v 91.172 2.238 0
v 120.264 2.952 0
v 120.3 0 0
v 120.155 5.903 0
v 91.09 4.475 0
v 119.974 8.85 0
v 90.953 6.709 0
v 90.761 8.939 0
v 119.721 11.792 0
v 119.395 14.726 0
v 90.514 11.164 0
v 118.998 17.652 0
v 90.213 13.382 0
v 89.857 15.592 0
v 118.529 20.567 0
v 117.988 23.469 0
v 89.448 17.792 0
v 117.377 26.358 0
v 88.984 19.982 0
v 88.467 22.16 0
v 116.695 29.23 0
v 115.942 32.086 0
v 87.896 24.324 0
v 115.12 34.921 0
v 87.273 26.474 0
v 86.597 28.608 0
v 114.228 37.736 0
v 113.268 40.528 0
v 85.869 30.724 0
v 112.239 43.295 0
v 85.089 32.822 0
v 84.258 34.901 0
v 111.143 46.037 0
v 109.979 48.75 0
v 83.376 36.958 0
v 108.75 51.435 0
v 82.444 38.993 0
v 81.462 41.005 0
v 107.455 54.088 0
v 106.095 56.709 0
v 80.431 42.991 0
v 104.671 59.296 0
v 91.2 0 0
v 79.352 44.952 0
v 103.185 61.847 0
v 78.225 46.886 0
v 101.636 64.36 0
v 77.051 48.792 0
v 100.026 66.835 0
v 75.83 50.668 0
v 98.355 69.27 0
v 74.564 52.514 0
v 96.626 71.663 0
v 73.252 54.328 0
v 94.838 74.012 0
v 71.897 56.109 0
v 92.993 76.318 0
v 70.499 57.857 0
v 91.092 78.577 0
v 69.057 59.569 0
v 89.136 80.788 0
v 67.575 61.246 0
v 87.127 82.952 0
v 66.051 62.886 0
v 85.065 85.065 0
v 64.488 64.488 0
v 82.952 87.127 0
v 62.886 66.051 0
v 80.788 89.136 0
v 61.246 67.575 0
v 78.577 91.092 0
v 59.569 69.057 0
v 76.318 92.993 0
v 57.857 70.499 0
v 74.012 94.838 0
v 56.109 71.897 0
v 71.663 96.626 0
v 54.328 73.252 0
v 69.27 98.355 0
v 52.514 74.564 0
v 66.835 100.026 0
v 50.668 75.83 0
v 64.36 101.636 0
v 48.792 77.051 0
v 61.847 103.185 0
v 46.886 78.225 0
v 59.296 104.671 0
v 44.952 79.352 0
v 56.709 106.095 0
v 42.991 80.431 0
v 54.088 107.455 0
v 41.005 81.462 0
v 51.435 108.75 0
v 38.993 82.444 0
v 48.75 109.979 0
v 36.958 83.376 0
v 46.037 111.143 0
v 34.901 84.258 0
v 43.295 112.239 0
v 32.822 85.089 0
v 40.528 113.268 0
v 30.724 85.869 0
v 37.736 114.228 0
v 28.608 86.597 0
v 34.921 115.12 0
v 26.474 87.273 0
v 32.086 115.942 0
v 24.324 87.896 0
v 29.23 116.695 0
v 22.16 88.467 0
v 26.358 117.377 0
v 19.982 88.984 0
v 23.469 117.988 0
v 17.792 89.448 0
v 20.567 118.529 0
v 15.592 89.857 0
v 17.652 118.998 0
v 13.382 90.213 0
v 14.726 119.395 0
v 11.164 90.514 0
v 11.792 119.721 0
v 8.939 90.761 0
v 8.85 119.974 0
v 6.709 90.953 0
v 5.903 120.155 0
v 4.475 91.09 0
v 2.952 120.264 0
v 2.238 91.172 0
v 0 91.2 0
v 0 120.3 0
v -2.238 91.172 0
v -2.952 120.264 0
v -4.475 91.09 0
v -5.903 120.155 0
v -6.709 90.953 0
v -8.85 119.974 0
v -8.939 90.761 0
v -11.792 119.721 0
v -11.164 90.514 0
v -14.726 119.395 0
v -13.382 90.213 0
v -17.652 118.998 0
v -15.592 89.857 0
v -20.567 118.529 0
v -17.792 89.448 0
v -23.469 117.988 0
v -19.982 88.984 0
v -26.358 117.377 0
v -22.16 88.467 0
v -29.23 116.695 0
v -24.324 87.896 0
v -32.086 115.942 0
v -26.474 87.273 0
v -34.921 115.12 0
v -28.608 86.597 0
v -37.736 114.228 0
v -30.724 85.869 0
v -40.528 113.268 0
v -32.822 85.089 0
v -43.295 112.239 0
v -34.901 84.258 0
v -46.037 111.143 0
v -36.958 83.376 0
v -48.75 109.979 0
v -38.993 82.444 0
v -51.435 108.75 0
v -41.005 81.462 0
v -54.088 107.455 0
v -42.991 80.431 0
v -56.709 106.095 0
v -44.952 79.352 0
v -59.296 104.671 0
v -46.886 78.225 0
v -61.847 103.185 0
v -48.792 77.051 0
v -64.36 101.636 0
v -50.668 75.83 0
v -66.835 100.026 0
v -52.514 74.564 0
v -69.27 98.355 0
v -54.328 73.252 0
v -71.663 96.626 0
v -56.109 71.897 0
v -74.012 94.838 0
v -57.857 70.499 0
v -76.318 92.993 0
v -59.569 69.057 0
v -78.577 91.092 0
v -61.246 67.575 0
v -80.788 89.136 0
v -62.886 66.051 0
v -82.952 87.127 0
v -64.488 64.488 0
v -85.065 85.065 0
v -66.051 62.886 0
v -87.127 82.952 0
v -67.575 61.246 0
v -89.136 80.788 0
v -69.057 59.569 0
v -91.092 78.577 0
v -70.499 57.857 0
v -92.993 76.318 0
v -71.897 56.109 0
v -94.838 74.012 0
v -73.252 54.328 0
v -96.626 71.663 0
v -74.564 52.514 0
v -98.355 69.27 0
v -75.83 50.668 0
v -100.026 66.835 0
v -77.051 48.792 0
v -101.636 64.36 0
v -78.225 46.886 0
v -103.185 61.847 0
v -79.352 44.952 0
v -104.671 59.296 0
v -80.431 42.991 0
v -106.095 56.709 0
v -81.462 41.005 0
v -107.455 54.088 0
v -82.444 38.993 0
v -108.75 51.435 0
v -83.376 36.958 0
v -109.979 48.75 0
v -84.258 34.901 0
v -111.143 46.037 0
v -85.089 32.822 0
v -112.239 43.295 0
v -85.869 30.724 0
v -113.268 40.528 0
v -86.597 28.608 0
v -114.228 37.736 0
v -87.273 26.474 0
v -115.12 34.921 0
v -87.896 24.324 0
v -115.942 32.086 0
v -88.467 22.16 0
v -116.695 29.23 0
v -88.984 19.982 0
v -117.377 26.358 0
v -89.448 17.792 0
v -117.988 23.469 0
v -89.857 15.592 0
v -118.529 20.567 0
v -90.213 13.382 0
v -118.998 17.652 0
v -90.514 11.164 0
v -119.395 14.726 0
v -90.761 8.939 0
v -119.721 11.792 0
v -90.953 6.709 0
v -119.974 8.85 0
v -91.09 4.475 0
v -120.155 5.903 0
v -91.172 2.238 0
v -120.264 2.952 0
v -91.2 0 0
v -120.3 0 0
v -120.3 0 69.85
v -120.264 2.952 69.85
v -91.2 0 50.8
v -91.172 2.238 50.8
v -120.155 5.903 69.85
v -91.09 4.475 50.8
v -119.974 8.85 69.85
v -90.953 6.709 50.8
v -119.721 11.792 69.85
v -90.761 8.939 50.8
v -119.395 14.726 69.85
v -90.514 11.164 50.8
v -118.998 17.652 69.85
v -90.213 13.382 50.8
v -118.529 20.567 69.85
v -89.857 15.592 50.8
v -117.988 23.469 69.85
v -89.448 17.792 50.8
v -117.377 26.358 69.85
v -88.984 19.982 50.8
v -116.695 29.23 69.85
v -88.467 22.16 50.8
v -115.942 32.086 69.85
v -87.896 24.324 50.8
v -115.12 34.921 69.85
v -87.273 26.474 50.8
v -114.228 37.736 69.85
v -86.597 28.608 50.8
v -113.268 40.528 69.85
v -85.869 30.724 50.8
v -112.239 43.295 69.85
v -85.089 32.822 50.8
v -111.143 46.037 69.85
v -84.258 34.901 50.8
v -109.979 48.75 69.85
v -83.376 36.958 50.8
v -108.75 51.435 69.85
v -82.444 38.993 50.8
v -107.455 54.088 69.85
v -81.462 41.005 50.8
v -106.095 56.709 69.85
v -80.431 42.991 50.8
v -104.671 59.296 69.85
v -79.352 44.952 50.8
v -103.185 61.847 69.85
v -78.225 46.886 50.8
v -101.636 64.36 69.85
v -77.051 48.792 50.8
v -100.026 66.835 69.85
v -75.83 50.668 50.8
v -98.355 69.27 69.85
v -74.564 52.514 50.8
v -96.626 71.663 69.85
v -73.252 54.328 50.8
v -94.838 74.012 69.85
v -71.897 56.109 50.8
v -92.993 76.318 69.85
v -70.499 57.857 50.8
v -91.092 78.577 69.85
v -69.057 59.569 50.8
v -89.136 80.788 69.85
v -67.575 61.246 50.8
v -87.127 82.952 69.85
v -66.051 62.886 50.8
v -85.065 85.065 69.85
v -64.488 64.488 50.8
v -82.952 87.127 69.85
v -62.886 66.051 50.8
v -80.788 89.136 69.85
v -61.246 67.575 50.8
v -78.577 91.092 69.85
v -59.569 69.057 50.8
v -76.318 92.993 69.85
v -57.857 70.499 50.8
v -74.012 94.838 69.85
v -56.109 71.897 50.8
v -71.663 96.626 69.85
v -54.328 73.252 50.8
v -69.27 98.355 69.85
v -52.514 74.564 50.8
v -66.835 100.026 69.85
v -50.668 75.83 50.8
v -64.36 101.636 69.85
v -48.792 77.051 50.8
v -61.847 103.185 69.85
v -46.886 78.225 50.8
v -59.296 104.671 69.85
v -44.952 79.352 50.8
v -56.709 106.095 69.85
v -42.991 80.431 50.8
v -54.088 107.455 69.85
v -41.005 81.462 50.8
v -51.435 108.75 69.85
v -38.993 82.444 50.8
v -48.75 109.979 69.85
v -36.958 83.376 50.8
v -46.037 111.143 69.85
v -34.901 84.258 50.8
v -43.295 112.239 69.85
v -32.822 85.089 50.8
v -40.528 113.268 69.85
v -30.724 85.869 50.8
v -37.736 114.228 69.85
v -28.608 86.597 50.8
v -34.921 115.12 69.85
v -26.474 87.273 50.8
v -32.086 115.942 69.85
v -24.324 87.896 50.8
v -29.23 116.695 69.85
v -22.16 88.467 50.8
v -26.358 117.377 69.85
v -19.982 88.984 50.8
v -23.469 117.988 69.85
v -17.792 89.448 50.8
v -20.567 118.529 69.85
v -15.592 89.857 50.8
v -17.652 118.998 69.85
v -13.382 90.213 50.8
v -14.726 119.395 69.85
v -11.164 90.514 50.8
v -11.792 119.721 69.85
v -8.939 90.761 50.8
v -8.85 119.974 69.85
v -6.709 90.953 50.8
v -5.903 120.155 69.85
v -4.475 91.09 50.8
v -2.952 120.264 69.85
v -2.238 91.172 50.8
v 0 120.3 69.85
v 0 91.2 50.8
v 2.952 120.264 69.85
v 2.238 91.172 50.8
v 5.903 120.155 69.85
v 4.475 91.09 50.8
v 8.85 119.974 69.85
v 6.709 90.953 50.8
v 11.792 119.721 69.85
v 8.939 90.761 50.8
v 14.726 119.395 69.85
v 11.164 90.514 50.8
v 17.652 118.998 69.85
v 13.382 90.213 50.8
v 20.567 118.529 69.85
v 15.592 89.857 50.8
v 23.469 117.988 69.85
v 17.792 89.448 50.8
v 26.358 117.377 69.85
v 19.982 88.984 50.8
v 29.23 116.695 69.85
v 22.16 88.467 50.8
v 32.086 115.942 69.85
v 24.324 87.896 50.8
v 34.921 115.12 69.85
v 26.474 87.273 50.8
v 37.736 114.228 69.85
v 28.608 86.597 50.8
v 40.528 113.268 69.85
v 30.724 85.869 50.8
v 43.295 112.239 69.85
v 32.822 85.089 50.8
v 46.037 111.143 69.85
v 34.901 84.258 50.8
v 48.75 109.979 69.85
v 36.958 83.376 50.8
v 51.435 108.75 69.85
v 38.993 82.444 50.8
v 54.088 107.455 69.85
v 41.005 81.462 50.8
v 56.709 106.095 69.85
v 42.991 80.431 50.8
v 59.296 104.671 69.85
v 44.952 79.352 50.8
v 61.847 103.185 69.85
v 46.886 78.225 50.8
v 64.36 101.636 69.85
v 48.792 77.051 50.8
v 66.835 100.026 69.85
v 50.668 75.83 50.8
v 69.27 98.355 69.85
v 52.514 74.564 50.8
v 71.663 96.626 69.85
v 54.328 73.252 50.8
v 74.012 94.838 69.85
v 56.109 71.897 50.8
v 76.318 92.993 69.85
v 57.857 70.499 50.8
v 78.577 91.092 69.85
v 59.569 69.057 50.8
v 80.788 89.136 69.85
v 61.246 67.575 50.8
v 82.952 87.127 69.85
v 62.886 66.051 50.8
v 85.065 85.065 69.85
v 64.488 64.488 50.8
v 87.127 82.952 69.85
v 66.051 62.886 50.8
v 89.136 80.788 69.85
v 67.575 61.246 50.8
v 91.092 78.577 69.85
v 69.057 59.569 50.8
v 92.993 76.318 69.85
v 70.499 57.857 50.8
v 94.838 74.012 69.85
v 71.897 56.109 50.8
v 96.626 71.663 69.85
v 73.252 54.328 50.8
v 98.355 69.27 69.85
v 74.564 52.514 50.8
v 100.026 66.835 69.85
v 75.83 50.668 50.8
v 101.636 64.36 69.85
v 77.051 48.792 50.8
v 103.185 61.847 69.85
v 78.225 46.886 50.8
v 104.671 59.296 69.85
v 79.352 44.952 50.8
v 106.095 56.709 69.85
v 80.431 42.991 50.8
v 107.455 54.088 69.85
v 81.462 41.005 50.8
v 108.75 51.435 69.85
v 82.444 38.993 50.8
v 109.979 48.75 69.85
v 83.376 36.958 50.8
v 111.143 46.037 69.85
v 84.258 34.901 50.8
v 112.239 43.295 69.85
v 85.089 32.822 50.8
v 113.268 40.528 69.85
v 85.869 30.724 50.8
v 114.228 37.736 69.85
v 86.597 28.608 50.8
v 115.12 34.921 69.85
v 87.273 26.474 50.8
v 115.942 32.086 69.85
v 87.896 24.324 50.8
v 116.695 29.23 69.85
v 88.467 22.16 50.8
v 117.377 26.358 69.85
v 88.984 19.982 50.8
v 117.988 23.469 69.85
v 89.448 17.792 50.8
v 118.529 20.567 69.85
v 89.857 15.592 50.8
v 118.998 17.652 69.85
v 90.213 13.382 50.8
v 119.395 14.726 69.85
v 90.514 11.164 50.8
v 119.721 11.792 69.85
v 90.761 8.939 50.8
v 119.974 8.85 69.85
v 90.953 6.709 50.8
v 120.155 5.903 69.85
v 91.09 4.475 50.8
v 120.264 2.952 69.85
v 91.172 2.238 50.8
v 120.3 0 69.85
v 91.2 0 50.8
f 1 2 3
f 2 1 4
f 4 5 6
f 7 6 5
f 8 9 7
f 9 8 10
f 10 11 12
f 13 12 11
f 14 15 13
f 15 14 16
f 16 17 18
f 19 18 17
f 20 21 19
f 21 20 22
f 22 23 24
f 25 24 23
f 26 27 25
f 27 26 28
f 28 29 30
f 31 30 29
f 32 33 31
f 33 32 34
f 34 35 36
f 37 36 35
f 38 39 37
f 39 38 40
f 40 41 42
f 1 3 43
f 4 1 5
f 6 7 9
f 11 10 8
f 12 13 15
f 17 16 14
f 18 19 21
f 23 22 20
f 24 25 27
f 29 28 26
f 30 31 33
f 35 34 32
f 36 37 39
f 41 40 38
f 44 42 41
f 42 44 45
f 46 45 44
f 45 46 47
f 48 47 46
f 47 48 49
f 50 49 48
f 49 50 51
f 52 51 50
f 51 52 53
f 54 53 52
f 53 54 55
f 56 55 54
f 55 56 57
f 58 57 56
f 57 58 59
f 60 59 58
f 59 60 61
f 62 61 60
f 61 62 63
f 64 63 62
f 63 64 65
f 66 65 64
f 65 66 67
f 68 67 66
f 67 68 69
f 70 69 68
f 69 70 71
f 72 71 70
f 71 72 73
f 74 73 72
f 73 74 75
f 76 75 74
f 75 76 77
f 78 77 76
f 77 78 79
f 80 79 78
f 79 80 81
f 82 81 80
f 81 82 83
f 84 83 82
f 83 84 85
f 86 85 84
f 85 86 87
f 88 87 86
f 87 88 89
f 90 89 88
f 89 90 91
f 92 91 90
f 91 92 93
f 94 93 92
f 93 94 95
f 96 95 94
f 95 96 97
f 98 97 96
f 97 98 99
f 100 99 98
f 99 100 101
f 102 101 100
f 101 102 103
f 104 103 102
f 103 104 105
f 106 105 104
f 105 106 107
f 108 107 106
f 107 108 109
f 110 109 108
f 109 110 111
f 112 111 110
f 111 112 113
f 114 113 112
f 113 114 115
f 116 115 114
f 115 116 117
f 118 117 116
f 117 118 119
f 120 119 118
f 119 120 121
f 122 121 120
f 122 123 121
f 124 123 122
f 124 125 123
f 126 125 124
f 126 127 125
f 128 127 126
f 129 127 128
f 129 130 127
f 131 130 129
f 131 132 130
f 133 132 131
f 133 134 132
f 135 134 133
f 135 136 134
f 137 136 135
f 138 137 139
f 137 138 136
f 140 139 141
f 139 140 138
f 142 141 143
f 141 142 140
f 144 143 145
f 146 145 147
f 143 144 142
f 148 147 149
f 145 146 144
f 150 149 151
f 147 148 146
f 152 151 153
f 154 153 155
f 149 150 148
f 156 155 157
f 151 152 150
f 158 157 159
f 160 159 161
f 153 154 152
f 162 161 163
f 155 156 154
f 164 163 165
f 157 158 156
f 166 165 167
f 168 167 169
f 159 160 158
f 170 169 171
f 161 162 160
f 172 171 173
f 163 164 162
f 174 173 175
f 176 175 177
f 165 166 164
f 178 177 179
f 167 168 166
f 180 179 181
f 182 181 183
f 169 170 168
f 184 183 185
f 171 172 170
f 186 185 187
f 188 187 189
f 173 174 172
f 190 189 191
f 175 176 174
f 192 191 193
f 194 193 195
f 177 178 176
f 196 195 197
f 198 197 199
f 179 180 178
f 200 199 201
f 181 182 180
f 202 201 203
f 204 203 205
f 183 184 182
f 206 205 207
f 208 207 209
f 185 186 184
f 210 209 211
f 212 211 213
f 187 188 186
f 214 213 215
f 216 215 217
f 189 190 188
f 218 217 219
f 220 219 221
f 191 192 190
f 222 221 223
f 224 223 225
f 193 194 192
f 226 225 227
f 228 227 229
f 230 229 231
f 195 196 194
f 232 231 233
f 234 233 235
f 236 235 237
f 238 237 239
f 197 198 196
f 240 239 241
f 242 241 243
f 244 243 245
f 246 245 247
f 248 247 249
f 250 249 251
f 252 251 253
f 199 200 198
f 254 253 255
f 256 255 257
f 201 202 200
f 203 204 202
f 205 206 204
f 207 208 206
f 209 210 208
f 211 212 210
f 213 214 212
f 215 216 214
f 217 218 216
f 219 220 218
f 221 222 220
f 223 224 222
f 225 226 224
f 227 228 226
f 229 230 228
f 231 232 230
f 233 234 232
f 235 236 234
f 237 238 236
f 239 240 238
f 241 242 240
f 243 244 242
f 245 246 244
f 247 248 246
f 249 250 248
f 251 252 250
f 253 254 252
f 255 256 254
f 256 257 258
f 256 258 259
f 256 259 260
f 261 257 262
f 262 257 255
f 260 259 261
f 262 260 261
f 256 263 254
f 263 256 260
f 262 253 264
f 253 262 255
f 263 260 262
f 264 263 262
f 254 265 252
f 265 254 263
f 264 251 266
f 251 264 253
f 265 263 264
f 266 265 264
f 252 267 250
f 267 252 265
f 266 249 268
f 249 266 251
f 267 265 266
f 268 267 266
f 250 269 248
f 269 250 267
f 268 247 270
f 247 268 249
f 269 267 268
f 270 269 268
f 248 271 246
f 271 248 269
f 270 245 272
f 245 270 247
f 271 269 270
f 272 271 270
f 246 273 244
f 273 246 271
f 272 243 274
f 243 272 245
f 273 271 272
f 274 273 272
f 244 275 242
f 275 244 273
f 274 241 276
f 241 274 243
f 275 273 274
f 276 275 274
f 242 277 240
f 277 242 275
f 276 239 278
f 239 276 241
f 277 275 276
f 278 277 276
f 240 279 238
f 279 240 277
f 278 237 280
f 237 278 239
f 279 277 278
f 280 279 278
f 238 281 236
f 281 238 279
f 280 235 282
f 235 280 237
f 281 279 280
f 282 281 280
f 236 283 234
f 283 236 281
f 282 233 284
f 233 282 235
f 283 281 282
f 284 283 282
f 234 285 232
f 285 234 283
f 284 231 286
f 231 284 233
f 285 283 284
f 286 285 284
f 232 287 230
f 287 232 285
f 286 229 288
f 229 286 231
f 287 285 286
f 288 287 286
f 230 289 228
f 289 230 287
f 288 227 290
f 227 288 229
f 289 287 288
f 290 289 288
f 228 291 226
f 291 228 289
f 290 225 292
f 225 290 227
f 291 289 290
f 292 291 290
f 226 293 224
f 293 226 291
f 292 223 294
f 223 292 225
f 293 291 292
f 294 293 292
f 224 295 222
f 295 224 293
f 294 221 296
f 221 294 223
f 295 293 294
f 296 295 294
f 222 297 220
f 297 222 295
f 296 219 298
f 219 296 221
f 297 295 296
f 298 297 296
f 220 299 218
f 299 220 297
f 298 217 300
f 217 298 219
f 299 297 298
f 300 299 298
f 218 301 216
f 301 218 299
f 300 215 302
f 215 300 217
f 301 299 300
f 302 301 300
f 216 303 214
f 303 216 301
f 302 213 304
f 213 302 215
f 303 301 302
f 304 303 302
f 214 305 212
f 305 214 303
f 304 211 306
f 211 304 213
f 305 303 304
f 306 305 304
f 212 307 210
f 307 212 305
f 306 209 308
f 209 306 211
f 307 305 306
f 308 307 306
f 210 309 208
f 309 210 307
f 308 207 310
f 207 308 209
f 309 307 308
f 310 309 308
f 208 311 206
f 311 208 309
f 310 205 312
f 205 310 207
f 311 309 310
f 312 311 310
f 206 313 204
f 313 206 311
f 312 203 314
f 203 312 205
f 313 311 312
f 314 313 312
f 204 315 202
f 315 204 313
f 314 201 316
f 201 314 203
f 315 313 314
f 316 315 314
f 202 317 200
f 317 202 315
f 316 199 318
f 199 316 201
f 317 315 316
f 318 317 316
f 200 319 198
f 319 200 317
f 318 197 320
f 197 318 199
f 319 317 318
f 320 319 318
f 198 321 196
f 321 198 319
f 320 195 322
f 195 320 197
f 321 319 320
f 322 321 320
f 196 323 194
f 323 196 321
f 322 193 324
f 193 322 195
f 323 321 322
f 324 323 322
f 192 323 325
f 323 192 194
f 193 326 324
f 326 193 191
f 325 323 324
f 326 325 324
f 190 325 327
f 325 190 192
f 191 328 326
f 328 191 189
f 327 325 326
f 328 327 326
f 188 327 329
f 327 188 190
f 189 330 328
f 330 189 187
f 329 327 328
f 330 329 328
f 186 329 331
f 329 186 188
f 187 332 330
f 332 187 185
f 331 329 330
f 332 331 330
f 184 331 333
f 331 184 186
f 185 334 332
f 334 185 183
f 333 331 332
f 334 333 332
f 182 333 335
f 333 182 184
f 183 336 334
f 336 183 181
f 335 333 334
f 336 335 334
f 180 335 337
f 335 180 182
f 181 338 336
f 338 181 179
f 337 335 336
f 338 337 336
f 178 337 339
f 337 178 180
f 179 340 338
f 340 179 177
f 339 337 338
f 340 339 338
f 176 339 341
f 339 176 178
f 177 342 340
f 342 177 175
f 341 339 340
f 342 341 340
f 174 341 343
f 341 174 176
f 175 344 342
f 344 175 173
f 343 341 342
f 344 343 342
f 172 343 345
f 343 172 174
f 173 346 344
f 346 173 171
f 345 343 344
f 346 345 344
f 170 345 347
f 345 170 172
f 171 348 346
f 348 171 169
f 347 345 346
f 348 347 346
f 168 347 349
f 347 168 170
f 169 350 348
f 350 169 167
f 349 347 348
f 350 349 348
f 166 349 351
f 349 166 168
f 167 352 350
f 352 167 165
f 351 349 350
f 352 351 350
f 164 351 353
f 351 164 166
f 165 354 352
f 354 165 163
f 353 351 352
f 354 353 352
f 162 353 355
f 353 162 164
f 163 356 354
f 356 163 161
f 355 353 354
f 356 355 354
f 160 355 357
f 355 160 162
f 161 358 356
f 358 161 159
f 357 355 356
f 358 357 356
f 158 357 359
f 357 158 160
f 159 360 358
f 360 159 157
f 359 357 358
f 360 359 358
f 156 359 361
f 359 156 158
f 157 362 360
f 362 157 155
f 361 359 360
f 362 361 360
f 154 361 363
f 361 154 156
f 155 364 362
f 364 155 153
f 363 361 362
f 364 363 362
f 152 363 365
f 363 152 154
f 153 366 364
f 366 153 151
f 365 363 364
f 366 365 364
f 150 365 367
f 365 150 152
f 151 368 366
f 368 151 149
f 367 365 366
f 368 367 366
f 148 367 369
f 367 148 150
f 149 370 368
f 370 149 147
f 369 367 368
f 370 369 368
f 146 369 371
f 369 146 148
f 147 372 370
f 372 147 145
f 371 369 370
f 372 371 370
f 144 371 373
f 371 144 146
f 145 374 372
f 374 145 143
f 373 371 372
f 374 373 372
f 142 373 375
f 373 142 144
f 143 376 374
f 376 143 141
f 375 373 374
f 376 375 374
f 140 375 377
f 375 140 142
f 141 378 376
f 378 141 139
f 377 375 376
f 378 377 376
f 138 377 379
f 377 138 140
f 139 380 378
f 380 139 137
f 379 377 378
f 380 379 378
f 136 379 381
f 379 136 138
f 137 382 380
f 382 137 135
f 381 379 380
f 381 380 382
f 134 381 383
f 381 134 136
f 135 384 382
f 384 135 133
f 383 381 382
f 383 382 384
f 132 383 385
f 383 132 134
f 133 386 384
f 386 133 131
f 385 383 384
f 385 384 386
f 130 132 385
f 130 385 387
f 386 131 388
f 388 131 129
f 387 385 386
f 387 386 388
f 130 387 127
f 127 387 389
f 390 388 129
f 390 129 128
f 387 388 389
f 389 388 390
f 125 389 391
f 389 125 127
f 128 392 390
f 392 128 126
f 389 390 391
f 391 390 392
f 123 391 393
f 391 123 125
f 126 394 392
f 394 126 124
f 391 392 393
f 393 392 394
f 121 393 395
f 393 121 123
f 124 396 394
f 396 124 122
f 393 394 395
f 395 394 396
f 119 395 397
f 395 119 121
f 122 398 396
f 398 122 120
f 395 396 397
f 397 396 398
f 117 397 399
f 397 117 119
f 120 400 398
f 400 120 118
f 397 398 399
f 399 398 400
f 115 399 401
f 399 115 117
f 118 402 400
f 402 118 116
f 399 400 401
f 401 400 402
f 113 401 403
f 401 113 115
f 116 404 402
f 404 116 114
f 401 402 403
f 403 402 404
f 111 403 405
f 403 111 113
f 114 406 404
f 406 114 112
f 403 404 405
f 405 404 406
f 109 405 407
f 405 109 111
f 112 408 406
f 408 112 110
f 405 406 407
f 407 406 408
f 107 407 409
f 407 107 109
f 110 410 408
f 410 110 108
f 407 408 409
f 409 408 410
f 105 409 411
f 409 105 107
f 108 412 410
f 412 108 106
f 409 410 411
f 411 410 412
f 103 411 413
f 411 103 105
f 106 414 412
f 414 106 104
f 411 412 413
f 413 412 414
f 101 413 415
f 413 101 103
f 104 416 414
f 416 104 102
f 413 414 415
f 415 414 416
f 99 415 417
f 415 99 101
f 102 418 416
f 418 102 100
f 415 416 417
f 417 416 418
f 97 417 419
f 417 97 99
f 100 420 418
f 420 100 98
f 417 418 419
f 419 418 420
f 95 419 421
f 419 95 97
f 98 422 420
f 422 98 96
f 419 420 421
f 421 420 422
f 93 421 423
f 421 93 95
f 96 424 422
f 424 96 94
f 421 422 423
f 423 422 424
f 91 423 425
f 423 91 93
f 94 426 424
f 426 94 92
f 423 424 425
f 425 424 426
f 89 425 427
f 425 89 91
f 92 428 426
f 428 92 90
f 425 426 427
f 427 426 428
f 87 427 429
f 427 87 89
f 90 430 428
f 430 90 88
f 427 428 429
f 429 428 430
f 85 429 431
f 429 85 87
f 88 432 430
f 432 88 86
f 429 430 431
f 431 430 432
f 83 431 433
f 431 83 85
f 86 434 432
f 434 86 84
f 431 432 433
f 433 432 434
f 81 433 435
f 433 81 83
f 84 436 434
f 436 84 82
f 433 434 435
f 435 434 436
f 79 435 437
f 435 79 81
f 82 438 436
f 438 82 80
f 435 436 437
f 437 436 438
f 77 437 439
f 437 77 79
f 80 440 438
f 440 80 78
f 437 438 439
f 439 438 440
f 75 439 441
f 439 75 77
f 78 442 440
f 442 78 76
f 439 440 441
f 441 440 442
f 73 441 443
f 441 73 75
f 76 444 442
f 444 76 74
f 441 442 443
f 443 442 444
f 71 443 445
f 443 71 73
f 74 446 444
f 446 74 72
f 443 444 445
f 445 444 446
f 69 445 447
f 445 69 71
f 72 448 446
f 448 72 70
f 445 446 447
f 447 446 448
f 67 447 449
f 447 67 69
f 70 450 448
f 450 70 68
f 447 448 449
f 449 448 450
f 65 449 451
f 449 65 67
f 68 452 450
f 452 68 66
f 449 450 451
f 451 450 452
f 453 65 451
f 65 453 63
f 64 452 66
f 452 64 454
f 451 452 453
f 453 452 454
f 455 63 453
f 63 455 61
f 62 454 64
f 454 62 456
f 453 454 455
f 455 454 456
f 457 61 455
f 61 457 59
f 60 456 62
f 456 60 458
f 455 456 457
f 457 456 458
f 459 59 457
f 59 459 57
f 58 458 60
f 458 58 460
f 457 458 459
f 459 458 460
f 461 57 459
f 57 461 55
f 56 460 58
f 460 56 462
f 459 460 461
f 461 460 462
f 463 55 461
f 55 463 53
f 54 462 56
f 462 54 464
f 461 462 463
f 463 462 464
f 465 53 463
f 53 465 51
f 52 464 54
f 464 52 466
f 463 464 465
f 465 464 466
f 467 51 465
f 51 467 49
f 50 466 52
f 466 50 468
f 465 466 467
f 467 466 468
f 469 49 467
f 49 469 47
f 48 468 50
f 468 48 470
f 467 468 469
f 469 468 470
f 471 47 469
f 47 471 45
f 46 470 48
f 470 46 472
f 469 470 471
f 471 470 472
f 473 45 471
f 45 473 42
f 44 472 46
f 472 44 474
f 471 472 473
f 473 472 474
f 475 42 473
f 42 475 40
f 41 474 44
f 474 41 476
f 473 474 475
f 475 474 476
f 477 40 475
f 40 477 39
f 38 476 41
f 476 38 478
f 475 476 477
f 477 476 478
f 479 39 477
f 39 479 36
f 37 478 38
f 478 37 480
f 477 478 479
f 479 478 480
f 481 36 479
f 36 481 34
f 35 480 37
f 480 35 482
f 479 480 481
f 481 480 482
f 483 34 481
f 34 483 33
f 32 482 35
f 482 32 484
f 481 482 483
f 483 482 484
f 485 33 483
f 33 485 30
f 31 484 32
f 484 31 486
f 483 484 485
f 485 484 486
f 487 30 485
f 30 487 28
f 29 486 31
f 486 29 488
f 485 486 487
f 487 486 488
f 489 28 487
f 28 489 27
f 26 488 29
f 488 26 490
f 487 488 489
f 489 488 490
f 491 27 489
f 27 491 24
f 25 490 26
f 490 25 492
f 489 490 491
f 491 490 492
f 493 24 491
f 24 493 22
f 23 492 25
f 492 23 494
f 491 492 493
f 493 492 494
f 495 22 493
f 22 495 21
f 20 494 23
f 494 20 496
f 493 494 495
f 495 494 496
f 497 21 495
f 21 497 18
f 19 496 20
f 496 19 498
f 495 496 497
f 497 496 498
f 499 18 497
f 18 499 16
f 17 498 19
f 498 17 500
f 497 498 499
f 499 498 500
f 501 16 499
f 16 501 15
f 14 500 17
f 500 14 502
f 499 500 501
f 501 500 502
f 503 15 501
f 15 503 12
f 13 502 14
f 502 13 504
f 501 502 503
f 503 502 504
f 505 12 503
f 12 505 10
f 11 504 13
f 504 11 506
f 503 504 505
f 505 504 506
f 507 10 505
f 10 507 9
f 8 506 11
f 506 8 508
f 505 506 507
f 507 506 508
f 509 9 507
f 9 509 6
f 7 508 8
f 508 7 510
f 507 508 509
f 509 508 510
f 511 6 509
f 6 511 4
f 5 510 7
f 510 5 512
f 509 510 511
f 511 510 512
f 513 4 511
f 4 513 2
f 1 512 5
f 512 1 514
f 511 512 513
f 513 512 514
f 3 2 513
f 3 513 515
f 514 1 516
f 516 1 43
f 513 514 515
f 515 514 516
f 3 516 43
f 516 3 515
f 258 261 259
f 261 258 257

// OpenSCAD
$fn=8;

intersection() {
	rotate_extrude($fn = 256) {
		rotate(a = [0, 0, 90]) {
			polygon(paths = [[0, 1, 2, 3]], points = [[0, 91.2000000000], [50.8000000000, 91.2000000000], [69.8500000000, 120.3000000000], [0, 120.3000000000]]);
		}
	}
	translate(v = [0, 500.0000000000, 0]) {
		cube(center = true, size = [1000, 1000, 1000]);
	}
}
